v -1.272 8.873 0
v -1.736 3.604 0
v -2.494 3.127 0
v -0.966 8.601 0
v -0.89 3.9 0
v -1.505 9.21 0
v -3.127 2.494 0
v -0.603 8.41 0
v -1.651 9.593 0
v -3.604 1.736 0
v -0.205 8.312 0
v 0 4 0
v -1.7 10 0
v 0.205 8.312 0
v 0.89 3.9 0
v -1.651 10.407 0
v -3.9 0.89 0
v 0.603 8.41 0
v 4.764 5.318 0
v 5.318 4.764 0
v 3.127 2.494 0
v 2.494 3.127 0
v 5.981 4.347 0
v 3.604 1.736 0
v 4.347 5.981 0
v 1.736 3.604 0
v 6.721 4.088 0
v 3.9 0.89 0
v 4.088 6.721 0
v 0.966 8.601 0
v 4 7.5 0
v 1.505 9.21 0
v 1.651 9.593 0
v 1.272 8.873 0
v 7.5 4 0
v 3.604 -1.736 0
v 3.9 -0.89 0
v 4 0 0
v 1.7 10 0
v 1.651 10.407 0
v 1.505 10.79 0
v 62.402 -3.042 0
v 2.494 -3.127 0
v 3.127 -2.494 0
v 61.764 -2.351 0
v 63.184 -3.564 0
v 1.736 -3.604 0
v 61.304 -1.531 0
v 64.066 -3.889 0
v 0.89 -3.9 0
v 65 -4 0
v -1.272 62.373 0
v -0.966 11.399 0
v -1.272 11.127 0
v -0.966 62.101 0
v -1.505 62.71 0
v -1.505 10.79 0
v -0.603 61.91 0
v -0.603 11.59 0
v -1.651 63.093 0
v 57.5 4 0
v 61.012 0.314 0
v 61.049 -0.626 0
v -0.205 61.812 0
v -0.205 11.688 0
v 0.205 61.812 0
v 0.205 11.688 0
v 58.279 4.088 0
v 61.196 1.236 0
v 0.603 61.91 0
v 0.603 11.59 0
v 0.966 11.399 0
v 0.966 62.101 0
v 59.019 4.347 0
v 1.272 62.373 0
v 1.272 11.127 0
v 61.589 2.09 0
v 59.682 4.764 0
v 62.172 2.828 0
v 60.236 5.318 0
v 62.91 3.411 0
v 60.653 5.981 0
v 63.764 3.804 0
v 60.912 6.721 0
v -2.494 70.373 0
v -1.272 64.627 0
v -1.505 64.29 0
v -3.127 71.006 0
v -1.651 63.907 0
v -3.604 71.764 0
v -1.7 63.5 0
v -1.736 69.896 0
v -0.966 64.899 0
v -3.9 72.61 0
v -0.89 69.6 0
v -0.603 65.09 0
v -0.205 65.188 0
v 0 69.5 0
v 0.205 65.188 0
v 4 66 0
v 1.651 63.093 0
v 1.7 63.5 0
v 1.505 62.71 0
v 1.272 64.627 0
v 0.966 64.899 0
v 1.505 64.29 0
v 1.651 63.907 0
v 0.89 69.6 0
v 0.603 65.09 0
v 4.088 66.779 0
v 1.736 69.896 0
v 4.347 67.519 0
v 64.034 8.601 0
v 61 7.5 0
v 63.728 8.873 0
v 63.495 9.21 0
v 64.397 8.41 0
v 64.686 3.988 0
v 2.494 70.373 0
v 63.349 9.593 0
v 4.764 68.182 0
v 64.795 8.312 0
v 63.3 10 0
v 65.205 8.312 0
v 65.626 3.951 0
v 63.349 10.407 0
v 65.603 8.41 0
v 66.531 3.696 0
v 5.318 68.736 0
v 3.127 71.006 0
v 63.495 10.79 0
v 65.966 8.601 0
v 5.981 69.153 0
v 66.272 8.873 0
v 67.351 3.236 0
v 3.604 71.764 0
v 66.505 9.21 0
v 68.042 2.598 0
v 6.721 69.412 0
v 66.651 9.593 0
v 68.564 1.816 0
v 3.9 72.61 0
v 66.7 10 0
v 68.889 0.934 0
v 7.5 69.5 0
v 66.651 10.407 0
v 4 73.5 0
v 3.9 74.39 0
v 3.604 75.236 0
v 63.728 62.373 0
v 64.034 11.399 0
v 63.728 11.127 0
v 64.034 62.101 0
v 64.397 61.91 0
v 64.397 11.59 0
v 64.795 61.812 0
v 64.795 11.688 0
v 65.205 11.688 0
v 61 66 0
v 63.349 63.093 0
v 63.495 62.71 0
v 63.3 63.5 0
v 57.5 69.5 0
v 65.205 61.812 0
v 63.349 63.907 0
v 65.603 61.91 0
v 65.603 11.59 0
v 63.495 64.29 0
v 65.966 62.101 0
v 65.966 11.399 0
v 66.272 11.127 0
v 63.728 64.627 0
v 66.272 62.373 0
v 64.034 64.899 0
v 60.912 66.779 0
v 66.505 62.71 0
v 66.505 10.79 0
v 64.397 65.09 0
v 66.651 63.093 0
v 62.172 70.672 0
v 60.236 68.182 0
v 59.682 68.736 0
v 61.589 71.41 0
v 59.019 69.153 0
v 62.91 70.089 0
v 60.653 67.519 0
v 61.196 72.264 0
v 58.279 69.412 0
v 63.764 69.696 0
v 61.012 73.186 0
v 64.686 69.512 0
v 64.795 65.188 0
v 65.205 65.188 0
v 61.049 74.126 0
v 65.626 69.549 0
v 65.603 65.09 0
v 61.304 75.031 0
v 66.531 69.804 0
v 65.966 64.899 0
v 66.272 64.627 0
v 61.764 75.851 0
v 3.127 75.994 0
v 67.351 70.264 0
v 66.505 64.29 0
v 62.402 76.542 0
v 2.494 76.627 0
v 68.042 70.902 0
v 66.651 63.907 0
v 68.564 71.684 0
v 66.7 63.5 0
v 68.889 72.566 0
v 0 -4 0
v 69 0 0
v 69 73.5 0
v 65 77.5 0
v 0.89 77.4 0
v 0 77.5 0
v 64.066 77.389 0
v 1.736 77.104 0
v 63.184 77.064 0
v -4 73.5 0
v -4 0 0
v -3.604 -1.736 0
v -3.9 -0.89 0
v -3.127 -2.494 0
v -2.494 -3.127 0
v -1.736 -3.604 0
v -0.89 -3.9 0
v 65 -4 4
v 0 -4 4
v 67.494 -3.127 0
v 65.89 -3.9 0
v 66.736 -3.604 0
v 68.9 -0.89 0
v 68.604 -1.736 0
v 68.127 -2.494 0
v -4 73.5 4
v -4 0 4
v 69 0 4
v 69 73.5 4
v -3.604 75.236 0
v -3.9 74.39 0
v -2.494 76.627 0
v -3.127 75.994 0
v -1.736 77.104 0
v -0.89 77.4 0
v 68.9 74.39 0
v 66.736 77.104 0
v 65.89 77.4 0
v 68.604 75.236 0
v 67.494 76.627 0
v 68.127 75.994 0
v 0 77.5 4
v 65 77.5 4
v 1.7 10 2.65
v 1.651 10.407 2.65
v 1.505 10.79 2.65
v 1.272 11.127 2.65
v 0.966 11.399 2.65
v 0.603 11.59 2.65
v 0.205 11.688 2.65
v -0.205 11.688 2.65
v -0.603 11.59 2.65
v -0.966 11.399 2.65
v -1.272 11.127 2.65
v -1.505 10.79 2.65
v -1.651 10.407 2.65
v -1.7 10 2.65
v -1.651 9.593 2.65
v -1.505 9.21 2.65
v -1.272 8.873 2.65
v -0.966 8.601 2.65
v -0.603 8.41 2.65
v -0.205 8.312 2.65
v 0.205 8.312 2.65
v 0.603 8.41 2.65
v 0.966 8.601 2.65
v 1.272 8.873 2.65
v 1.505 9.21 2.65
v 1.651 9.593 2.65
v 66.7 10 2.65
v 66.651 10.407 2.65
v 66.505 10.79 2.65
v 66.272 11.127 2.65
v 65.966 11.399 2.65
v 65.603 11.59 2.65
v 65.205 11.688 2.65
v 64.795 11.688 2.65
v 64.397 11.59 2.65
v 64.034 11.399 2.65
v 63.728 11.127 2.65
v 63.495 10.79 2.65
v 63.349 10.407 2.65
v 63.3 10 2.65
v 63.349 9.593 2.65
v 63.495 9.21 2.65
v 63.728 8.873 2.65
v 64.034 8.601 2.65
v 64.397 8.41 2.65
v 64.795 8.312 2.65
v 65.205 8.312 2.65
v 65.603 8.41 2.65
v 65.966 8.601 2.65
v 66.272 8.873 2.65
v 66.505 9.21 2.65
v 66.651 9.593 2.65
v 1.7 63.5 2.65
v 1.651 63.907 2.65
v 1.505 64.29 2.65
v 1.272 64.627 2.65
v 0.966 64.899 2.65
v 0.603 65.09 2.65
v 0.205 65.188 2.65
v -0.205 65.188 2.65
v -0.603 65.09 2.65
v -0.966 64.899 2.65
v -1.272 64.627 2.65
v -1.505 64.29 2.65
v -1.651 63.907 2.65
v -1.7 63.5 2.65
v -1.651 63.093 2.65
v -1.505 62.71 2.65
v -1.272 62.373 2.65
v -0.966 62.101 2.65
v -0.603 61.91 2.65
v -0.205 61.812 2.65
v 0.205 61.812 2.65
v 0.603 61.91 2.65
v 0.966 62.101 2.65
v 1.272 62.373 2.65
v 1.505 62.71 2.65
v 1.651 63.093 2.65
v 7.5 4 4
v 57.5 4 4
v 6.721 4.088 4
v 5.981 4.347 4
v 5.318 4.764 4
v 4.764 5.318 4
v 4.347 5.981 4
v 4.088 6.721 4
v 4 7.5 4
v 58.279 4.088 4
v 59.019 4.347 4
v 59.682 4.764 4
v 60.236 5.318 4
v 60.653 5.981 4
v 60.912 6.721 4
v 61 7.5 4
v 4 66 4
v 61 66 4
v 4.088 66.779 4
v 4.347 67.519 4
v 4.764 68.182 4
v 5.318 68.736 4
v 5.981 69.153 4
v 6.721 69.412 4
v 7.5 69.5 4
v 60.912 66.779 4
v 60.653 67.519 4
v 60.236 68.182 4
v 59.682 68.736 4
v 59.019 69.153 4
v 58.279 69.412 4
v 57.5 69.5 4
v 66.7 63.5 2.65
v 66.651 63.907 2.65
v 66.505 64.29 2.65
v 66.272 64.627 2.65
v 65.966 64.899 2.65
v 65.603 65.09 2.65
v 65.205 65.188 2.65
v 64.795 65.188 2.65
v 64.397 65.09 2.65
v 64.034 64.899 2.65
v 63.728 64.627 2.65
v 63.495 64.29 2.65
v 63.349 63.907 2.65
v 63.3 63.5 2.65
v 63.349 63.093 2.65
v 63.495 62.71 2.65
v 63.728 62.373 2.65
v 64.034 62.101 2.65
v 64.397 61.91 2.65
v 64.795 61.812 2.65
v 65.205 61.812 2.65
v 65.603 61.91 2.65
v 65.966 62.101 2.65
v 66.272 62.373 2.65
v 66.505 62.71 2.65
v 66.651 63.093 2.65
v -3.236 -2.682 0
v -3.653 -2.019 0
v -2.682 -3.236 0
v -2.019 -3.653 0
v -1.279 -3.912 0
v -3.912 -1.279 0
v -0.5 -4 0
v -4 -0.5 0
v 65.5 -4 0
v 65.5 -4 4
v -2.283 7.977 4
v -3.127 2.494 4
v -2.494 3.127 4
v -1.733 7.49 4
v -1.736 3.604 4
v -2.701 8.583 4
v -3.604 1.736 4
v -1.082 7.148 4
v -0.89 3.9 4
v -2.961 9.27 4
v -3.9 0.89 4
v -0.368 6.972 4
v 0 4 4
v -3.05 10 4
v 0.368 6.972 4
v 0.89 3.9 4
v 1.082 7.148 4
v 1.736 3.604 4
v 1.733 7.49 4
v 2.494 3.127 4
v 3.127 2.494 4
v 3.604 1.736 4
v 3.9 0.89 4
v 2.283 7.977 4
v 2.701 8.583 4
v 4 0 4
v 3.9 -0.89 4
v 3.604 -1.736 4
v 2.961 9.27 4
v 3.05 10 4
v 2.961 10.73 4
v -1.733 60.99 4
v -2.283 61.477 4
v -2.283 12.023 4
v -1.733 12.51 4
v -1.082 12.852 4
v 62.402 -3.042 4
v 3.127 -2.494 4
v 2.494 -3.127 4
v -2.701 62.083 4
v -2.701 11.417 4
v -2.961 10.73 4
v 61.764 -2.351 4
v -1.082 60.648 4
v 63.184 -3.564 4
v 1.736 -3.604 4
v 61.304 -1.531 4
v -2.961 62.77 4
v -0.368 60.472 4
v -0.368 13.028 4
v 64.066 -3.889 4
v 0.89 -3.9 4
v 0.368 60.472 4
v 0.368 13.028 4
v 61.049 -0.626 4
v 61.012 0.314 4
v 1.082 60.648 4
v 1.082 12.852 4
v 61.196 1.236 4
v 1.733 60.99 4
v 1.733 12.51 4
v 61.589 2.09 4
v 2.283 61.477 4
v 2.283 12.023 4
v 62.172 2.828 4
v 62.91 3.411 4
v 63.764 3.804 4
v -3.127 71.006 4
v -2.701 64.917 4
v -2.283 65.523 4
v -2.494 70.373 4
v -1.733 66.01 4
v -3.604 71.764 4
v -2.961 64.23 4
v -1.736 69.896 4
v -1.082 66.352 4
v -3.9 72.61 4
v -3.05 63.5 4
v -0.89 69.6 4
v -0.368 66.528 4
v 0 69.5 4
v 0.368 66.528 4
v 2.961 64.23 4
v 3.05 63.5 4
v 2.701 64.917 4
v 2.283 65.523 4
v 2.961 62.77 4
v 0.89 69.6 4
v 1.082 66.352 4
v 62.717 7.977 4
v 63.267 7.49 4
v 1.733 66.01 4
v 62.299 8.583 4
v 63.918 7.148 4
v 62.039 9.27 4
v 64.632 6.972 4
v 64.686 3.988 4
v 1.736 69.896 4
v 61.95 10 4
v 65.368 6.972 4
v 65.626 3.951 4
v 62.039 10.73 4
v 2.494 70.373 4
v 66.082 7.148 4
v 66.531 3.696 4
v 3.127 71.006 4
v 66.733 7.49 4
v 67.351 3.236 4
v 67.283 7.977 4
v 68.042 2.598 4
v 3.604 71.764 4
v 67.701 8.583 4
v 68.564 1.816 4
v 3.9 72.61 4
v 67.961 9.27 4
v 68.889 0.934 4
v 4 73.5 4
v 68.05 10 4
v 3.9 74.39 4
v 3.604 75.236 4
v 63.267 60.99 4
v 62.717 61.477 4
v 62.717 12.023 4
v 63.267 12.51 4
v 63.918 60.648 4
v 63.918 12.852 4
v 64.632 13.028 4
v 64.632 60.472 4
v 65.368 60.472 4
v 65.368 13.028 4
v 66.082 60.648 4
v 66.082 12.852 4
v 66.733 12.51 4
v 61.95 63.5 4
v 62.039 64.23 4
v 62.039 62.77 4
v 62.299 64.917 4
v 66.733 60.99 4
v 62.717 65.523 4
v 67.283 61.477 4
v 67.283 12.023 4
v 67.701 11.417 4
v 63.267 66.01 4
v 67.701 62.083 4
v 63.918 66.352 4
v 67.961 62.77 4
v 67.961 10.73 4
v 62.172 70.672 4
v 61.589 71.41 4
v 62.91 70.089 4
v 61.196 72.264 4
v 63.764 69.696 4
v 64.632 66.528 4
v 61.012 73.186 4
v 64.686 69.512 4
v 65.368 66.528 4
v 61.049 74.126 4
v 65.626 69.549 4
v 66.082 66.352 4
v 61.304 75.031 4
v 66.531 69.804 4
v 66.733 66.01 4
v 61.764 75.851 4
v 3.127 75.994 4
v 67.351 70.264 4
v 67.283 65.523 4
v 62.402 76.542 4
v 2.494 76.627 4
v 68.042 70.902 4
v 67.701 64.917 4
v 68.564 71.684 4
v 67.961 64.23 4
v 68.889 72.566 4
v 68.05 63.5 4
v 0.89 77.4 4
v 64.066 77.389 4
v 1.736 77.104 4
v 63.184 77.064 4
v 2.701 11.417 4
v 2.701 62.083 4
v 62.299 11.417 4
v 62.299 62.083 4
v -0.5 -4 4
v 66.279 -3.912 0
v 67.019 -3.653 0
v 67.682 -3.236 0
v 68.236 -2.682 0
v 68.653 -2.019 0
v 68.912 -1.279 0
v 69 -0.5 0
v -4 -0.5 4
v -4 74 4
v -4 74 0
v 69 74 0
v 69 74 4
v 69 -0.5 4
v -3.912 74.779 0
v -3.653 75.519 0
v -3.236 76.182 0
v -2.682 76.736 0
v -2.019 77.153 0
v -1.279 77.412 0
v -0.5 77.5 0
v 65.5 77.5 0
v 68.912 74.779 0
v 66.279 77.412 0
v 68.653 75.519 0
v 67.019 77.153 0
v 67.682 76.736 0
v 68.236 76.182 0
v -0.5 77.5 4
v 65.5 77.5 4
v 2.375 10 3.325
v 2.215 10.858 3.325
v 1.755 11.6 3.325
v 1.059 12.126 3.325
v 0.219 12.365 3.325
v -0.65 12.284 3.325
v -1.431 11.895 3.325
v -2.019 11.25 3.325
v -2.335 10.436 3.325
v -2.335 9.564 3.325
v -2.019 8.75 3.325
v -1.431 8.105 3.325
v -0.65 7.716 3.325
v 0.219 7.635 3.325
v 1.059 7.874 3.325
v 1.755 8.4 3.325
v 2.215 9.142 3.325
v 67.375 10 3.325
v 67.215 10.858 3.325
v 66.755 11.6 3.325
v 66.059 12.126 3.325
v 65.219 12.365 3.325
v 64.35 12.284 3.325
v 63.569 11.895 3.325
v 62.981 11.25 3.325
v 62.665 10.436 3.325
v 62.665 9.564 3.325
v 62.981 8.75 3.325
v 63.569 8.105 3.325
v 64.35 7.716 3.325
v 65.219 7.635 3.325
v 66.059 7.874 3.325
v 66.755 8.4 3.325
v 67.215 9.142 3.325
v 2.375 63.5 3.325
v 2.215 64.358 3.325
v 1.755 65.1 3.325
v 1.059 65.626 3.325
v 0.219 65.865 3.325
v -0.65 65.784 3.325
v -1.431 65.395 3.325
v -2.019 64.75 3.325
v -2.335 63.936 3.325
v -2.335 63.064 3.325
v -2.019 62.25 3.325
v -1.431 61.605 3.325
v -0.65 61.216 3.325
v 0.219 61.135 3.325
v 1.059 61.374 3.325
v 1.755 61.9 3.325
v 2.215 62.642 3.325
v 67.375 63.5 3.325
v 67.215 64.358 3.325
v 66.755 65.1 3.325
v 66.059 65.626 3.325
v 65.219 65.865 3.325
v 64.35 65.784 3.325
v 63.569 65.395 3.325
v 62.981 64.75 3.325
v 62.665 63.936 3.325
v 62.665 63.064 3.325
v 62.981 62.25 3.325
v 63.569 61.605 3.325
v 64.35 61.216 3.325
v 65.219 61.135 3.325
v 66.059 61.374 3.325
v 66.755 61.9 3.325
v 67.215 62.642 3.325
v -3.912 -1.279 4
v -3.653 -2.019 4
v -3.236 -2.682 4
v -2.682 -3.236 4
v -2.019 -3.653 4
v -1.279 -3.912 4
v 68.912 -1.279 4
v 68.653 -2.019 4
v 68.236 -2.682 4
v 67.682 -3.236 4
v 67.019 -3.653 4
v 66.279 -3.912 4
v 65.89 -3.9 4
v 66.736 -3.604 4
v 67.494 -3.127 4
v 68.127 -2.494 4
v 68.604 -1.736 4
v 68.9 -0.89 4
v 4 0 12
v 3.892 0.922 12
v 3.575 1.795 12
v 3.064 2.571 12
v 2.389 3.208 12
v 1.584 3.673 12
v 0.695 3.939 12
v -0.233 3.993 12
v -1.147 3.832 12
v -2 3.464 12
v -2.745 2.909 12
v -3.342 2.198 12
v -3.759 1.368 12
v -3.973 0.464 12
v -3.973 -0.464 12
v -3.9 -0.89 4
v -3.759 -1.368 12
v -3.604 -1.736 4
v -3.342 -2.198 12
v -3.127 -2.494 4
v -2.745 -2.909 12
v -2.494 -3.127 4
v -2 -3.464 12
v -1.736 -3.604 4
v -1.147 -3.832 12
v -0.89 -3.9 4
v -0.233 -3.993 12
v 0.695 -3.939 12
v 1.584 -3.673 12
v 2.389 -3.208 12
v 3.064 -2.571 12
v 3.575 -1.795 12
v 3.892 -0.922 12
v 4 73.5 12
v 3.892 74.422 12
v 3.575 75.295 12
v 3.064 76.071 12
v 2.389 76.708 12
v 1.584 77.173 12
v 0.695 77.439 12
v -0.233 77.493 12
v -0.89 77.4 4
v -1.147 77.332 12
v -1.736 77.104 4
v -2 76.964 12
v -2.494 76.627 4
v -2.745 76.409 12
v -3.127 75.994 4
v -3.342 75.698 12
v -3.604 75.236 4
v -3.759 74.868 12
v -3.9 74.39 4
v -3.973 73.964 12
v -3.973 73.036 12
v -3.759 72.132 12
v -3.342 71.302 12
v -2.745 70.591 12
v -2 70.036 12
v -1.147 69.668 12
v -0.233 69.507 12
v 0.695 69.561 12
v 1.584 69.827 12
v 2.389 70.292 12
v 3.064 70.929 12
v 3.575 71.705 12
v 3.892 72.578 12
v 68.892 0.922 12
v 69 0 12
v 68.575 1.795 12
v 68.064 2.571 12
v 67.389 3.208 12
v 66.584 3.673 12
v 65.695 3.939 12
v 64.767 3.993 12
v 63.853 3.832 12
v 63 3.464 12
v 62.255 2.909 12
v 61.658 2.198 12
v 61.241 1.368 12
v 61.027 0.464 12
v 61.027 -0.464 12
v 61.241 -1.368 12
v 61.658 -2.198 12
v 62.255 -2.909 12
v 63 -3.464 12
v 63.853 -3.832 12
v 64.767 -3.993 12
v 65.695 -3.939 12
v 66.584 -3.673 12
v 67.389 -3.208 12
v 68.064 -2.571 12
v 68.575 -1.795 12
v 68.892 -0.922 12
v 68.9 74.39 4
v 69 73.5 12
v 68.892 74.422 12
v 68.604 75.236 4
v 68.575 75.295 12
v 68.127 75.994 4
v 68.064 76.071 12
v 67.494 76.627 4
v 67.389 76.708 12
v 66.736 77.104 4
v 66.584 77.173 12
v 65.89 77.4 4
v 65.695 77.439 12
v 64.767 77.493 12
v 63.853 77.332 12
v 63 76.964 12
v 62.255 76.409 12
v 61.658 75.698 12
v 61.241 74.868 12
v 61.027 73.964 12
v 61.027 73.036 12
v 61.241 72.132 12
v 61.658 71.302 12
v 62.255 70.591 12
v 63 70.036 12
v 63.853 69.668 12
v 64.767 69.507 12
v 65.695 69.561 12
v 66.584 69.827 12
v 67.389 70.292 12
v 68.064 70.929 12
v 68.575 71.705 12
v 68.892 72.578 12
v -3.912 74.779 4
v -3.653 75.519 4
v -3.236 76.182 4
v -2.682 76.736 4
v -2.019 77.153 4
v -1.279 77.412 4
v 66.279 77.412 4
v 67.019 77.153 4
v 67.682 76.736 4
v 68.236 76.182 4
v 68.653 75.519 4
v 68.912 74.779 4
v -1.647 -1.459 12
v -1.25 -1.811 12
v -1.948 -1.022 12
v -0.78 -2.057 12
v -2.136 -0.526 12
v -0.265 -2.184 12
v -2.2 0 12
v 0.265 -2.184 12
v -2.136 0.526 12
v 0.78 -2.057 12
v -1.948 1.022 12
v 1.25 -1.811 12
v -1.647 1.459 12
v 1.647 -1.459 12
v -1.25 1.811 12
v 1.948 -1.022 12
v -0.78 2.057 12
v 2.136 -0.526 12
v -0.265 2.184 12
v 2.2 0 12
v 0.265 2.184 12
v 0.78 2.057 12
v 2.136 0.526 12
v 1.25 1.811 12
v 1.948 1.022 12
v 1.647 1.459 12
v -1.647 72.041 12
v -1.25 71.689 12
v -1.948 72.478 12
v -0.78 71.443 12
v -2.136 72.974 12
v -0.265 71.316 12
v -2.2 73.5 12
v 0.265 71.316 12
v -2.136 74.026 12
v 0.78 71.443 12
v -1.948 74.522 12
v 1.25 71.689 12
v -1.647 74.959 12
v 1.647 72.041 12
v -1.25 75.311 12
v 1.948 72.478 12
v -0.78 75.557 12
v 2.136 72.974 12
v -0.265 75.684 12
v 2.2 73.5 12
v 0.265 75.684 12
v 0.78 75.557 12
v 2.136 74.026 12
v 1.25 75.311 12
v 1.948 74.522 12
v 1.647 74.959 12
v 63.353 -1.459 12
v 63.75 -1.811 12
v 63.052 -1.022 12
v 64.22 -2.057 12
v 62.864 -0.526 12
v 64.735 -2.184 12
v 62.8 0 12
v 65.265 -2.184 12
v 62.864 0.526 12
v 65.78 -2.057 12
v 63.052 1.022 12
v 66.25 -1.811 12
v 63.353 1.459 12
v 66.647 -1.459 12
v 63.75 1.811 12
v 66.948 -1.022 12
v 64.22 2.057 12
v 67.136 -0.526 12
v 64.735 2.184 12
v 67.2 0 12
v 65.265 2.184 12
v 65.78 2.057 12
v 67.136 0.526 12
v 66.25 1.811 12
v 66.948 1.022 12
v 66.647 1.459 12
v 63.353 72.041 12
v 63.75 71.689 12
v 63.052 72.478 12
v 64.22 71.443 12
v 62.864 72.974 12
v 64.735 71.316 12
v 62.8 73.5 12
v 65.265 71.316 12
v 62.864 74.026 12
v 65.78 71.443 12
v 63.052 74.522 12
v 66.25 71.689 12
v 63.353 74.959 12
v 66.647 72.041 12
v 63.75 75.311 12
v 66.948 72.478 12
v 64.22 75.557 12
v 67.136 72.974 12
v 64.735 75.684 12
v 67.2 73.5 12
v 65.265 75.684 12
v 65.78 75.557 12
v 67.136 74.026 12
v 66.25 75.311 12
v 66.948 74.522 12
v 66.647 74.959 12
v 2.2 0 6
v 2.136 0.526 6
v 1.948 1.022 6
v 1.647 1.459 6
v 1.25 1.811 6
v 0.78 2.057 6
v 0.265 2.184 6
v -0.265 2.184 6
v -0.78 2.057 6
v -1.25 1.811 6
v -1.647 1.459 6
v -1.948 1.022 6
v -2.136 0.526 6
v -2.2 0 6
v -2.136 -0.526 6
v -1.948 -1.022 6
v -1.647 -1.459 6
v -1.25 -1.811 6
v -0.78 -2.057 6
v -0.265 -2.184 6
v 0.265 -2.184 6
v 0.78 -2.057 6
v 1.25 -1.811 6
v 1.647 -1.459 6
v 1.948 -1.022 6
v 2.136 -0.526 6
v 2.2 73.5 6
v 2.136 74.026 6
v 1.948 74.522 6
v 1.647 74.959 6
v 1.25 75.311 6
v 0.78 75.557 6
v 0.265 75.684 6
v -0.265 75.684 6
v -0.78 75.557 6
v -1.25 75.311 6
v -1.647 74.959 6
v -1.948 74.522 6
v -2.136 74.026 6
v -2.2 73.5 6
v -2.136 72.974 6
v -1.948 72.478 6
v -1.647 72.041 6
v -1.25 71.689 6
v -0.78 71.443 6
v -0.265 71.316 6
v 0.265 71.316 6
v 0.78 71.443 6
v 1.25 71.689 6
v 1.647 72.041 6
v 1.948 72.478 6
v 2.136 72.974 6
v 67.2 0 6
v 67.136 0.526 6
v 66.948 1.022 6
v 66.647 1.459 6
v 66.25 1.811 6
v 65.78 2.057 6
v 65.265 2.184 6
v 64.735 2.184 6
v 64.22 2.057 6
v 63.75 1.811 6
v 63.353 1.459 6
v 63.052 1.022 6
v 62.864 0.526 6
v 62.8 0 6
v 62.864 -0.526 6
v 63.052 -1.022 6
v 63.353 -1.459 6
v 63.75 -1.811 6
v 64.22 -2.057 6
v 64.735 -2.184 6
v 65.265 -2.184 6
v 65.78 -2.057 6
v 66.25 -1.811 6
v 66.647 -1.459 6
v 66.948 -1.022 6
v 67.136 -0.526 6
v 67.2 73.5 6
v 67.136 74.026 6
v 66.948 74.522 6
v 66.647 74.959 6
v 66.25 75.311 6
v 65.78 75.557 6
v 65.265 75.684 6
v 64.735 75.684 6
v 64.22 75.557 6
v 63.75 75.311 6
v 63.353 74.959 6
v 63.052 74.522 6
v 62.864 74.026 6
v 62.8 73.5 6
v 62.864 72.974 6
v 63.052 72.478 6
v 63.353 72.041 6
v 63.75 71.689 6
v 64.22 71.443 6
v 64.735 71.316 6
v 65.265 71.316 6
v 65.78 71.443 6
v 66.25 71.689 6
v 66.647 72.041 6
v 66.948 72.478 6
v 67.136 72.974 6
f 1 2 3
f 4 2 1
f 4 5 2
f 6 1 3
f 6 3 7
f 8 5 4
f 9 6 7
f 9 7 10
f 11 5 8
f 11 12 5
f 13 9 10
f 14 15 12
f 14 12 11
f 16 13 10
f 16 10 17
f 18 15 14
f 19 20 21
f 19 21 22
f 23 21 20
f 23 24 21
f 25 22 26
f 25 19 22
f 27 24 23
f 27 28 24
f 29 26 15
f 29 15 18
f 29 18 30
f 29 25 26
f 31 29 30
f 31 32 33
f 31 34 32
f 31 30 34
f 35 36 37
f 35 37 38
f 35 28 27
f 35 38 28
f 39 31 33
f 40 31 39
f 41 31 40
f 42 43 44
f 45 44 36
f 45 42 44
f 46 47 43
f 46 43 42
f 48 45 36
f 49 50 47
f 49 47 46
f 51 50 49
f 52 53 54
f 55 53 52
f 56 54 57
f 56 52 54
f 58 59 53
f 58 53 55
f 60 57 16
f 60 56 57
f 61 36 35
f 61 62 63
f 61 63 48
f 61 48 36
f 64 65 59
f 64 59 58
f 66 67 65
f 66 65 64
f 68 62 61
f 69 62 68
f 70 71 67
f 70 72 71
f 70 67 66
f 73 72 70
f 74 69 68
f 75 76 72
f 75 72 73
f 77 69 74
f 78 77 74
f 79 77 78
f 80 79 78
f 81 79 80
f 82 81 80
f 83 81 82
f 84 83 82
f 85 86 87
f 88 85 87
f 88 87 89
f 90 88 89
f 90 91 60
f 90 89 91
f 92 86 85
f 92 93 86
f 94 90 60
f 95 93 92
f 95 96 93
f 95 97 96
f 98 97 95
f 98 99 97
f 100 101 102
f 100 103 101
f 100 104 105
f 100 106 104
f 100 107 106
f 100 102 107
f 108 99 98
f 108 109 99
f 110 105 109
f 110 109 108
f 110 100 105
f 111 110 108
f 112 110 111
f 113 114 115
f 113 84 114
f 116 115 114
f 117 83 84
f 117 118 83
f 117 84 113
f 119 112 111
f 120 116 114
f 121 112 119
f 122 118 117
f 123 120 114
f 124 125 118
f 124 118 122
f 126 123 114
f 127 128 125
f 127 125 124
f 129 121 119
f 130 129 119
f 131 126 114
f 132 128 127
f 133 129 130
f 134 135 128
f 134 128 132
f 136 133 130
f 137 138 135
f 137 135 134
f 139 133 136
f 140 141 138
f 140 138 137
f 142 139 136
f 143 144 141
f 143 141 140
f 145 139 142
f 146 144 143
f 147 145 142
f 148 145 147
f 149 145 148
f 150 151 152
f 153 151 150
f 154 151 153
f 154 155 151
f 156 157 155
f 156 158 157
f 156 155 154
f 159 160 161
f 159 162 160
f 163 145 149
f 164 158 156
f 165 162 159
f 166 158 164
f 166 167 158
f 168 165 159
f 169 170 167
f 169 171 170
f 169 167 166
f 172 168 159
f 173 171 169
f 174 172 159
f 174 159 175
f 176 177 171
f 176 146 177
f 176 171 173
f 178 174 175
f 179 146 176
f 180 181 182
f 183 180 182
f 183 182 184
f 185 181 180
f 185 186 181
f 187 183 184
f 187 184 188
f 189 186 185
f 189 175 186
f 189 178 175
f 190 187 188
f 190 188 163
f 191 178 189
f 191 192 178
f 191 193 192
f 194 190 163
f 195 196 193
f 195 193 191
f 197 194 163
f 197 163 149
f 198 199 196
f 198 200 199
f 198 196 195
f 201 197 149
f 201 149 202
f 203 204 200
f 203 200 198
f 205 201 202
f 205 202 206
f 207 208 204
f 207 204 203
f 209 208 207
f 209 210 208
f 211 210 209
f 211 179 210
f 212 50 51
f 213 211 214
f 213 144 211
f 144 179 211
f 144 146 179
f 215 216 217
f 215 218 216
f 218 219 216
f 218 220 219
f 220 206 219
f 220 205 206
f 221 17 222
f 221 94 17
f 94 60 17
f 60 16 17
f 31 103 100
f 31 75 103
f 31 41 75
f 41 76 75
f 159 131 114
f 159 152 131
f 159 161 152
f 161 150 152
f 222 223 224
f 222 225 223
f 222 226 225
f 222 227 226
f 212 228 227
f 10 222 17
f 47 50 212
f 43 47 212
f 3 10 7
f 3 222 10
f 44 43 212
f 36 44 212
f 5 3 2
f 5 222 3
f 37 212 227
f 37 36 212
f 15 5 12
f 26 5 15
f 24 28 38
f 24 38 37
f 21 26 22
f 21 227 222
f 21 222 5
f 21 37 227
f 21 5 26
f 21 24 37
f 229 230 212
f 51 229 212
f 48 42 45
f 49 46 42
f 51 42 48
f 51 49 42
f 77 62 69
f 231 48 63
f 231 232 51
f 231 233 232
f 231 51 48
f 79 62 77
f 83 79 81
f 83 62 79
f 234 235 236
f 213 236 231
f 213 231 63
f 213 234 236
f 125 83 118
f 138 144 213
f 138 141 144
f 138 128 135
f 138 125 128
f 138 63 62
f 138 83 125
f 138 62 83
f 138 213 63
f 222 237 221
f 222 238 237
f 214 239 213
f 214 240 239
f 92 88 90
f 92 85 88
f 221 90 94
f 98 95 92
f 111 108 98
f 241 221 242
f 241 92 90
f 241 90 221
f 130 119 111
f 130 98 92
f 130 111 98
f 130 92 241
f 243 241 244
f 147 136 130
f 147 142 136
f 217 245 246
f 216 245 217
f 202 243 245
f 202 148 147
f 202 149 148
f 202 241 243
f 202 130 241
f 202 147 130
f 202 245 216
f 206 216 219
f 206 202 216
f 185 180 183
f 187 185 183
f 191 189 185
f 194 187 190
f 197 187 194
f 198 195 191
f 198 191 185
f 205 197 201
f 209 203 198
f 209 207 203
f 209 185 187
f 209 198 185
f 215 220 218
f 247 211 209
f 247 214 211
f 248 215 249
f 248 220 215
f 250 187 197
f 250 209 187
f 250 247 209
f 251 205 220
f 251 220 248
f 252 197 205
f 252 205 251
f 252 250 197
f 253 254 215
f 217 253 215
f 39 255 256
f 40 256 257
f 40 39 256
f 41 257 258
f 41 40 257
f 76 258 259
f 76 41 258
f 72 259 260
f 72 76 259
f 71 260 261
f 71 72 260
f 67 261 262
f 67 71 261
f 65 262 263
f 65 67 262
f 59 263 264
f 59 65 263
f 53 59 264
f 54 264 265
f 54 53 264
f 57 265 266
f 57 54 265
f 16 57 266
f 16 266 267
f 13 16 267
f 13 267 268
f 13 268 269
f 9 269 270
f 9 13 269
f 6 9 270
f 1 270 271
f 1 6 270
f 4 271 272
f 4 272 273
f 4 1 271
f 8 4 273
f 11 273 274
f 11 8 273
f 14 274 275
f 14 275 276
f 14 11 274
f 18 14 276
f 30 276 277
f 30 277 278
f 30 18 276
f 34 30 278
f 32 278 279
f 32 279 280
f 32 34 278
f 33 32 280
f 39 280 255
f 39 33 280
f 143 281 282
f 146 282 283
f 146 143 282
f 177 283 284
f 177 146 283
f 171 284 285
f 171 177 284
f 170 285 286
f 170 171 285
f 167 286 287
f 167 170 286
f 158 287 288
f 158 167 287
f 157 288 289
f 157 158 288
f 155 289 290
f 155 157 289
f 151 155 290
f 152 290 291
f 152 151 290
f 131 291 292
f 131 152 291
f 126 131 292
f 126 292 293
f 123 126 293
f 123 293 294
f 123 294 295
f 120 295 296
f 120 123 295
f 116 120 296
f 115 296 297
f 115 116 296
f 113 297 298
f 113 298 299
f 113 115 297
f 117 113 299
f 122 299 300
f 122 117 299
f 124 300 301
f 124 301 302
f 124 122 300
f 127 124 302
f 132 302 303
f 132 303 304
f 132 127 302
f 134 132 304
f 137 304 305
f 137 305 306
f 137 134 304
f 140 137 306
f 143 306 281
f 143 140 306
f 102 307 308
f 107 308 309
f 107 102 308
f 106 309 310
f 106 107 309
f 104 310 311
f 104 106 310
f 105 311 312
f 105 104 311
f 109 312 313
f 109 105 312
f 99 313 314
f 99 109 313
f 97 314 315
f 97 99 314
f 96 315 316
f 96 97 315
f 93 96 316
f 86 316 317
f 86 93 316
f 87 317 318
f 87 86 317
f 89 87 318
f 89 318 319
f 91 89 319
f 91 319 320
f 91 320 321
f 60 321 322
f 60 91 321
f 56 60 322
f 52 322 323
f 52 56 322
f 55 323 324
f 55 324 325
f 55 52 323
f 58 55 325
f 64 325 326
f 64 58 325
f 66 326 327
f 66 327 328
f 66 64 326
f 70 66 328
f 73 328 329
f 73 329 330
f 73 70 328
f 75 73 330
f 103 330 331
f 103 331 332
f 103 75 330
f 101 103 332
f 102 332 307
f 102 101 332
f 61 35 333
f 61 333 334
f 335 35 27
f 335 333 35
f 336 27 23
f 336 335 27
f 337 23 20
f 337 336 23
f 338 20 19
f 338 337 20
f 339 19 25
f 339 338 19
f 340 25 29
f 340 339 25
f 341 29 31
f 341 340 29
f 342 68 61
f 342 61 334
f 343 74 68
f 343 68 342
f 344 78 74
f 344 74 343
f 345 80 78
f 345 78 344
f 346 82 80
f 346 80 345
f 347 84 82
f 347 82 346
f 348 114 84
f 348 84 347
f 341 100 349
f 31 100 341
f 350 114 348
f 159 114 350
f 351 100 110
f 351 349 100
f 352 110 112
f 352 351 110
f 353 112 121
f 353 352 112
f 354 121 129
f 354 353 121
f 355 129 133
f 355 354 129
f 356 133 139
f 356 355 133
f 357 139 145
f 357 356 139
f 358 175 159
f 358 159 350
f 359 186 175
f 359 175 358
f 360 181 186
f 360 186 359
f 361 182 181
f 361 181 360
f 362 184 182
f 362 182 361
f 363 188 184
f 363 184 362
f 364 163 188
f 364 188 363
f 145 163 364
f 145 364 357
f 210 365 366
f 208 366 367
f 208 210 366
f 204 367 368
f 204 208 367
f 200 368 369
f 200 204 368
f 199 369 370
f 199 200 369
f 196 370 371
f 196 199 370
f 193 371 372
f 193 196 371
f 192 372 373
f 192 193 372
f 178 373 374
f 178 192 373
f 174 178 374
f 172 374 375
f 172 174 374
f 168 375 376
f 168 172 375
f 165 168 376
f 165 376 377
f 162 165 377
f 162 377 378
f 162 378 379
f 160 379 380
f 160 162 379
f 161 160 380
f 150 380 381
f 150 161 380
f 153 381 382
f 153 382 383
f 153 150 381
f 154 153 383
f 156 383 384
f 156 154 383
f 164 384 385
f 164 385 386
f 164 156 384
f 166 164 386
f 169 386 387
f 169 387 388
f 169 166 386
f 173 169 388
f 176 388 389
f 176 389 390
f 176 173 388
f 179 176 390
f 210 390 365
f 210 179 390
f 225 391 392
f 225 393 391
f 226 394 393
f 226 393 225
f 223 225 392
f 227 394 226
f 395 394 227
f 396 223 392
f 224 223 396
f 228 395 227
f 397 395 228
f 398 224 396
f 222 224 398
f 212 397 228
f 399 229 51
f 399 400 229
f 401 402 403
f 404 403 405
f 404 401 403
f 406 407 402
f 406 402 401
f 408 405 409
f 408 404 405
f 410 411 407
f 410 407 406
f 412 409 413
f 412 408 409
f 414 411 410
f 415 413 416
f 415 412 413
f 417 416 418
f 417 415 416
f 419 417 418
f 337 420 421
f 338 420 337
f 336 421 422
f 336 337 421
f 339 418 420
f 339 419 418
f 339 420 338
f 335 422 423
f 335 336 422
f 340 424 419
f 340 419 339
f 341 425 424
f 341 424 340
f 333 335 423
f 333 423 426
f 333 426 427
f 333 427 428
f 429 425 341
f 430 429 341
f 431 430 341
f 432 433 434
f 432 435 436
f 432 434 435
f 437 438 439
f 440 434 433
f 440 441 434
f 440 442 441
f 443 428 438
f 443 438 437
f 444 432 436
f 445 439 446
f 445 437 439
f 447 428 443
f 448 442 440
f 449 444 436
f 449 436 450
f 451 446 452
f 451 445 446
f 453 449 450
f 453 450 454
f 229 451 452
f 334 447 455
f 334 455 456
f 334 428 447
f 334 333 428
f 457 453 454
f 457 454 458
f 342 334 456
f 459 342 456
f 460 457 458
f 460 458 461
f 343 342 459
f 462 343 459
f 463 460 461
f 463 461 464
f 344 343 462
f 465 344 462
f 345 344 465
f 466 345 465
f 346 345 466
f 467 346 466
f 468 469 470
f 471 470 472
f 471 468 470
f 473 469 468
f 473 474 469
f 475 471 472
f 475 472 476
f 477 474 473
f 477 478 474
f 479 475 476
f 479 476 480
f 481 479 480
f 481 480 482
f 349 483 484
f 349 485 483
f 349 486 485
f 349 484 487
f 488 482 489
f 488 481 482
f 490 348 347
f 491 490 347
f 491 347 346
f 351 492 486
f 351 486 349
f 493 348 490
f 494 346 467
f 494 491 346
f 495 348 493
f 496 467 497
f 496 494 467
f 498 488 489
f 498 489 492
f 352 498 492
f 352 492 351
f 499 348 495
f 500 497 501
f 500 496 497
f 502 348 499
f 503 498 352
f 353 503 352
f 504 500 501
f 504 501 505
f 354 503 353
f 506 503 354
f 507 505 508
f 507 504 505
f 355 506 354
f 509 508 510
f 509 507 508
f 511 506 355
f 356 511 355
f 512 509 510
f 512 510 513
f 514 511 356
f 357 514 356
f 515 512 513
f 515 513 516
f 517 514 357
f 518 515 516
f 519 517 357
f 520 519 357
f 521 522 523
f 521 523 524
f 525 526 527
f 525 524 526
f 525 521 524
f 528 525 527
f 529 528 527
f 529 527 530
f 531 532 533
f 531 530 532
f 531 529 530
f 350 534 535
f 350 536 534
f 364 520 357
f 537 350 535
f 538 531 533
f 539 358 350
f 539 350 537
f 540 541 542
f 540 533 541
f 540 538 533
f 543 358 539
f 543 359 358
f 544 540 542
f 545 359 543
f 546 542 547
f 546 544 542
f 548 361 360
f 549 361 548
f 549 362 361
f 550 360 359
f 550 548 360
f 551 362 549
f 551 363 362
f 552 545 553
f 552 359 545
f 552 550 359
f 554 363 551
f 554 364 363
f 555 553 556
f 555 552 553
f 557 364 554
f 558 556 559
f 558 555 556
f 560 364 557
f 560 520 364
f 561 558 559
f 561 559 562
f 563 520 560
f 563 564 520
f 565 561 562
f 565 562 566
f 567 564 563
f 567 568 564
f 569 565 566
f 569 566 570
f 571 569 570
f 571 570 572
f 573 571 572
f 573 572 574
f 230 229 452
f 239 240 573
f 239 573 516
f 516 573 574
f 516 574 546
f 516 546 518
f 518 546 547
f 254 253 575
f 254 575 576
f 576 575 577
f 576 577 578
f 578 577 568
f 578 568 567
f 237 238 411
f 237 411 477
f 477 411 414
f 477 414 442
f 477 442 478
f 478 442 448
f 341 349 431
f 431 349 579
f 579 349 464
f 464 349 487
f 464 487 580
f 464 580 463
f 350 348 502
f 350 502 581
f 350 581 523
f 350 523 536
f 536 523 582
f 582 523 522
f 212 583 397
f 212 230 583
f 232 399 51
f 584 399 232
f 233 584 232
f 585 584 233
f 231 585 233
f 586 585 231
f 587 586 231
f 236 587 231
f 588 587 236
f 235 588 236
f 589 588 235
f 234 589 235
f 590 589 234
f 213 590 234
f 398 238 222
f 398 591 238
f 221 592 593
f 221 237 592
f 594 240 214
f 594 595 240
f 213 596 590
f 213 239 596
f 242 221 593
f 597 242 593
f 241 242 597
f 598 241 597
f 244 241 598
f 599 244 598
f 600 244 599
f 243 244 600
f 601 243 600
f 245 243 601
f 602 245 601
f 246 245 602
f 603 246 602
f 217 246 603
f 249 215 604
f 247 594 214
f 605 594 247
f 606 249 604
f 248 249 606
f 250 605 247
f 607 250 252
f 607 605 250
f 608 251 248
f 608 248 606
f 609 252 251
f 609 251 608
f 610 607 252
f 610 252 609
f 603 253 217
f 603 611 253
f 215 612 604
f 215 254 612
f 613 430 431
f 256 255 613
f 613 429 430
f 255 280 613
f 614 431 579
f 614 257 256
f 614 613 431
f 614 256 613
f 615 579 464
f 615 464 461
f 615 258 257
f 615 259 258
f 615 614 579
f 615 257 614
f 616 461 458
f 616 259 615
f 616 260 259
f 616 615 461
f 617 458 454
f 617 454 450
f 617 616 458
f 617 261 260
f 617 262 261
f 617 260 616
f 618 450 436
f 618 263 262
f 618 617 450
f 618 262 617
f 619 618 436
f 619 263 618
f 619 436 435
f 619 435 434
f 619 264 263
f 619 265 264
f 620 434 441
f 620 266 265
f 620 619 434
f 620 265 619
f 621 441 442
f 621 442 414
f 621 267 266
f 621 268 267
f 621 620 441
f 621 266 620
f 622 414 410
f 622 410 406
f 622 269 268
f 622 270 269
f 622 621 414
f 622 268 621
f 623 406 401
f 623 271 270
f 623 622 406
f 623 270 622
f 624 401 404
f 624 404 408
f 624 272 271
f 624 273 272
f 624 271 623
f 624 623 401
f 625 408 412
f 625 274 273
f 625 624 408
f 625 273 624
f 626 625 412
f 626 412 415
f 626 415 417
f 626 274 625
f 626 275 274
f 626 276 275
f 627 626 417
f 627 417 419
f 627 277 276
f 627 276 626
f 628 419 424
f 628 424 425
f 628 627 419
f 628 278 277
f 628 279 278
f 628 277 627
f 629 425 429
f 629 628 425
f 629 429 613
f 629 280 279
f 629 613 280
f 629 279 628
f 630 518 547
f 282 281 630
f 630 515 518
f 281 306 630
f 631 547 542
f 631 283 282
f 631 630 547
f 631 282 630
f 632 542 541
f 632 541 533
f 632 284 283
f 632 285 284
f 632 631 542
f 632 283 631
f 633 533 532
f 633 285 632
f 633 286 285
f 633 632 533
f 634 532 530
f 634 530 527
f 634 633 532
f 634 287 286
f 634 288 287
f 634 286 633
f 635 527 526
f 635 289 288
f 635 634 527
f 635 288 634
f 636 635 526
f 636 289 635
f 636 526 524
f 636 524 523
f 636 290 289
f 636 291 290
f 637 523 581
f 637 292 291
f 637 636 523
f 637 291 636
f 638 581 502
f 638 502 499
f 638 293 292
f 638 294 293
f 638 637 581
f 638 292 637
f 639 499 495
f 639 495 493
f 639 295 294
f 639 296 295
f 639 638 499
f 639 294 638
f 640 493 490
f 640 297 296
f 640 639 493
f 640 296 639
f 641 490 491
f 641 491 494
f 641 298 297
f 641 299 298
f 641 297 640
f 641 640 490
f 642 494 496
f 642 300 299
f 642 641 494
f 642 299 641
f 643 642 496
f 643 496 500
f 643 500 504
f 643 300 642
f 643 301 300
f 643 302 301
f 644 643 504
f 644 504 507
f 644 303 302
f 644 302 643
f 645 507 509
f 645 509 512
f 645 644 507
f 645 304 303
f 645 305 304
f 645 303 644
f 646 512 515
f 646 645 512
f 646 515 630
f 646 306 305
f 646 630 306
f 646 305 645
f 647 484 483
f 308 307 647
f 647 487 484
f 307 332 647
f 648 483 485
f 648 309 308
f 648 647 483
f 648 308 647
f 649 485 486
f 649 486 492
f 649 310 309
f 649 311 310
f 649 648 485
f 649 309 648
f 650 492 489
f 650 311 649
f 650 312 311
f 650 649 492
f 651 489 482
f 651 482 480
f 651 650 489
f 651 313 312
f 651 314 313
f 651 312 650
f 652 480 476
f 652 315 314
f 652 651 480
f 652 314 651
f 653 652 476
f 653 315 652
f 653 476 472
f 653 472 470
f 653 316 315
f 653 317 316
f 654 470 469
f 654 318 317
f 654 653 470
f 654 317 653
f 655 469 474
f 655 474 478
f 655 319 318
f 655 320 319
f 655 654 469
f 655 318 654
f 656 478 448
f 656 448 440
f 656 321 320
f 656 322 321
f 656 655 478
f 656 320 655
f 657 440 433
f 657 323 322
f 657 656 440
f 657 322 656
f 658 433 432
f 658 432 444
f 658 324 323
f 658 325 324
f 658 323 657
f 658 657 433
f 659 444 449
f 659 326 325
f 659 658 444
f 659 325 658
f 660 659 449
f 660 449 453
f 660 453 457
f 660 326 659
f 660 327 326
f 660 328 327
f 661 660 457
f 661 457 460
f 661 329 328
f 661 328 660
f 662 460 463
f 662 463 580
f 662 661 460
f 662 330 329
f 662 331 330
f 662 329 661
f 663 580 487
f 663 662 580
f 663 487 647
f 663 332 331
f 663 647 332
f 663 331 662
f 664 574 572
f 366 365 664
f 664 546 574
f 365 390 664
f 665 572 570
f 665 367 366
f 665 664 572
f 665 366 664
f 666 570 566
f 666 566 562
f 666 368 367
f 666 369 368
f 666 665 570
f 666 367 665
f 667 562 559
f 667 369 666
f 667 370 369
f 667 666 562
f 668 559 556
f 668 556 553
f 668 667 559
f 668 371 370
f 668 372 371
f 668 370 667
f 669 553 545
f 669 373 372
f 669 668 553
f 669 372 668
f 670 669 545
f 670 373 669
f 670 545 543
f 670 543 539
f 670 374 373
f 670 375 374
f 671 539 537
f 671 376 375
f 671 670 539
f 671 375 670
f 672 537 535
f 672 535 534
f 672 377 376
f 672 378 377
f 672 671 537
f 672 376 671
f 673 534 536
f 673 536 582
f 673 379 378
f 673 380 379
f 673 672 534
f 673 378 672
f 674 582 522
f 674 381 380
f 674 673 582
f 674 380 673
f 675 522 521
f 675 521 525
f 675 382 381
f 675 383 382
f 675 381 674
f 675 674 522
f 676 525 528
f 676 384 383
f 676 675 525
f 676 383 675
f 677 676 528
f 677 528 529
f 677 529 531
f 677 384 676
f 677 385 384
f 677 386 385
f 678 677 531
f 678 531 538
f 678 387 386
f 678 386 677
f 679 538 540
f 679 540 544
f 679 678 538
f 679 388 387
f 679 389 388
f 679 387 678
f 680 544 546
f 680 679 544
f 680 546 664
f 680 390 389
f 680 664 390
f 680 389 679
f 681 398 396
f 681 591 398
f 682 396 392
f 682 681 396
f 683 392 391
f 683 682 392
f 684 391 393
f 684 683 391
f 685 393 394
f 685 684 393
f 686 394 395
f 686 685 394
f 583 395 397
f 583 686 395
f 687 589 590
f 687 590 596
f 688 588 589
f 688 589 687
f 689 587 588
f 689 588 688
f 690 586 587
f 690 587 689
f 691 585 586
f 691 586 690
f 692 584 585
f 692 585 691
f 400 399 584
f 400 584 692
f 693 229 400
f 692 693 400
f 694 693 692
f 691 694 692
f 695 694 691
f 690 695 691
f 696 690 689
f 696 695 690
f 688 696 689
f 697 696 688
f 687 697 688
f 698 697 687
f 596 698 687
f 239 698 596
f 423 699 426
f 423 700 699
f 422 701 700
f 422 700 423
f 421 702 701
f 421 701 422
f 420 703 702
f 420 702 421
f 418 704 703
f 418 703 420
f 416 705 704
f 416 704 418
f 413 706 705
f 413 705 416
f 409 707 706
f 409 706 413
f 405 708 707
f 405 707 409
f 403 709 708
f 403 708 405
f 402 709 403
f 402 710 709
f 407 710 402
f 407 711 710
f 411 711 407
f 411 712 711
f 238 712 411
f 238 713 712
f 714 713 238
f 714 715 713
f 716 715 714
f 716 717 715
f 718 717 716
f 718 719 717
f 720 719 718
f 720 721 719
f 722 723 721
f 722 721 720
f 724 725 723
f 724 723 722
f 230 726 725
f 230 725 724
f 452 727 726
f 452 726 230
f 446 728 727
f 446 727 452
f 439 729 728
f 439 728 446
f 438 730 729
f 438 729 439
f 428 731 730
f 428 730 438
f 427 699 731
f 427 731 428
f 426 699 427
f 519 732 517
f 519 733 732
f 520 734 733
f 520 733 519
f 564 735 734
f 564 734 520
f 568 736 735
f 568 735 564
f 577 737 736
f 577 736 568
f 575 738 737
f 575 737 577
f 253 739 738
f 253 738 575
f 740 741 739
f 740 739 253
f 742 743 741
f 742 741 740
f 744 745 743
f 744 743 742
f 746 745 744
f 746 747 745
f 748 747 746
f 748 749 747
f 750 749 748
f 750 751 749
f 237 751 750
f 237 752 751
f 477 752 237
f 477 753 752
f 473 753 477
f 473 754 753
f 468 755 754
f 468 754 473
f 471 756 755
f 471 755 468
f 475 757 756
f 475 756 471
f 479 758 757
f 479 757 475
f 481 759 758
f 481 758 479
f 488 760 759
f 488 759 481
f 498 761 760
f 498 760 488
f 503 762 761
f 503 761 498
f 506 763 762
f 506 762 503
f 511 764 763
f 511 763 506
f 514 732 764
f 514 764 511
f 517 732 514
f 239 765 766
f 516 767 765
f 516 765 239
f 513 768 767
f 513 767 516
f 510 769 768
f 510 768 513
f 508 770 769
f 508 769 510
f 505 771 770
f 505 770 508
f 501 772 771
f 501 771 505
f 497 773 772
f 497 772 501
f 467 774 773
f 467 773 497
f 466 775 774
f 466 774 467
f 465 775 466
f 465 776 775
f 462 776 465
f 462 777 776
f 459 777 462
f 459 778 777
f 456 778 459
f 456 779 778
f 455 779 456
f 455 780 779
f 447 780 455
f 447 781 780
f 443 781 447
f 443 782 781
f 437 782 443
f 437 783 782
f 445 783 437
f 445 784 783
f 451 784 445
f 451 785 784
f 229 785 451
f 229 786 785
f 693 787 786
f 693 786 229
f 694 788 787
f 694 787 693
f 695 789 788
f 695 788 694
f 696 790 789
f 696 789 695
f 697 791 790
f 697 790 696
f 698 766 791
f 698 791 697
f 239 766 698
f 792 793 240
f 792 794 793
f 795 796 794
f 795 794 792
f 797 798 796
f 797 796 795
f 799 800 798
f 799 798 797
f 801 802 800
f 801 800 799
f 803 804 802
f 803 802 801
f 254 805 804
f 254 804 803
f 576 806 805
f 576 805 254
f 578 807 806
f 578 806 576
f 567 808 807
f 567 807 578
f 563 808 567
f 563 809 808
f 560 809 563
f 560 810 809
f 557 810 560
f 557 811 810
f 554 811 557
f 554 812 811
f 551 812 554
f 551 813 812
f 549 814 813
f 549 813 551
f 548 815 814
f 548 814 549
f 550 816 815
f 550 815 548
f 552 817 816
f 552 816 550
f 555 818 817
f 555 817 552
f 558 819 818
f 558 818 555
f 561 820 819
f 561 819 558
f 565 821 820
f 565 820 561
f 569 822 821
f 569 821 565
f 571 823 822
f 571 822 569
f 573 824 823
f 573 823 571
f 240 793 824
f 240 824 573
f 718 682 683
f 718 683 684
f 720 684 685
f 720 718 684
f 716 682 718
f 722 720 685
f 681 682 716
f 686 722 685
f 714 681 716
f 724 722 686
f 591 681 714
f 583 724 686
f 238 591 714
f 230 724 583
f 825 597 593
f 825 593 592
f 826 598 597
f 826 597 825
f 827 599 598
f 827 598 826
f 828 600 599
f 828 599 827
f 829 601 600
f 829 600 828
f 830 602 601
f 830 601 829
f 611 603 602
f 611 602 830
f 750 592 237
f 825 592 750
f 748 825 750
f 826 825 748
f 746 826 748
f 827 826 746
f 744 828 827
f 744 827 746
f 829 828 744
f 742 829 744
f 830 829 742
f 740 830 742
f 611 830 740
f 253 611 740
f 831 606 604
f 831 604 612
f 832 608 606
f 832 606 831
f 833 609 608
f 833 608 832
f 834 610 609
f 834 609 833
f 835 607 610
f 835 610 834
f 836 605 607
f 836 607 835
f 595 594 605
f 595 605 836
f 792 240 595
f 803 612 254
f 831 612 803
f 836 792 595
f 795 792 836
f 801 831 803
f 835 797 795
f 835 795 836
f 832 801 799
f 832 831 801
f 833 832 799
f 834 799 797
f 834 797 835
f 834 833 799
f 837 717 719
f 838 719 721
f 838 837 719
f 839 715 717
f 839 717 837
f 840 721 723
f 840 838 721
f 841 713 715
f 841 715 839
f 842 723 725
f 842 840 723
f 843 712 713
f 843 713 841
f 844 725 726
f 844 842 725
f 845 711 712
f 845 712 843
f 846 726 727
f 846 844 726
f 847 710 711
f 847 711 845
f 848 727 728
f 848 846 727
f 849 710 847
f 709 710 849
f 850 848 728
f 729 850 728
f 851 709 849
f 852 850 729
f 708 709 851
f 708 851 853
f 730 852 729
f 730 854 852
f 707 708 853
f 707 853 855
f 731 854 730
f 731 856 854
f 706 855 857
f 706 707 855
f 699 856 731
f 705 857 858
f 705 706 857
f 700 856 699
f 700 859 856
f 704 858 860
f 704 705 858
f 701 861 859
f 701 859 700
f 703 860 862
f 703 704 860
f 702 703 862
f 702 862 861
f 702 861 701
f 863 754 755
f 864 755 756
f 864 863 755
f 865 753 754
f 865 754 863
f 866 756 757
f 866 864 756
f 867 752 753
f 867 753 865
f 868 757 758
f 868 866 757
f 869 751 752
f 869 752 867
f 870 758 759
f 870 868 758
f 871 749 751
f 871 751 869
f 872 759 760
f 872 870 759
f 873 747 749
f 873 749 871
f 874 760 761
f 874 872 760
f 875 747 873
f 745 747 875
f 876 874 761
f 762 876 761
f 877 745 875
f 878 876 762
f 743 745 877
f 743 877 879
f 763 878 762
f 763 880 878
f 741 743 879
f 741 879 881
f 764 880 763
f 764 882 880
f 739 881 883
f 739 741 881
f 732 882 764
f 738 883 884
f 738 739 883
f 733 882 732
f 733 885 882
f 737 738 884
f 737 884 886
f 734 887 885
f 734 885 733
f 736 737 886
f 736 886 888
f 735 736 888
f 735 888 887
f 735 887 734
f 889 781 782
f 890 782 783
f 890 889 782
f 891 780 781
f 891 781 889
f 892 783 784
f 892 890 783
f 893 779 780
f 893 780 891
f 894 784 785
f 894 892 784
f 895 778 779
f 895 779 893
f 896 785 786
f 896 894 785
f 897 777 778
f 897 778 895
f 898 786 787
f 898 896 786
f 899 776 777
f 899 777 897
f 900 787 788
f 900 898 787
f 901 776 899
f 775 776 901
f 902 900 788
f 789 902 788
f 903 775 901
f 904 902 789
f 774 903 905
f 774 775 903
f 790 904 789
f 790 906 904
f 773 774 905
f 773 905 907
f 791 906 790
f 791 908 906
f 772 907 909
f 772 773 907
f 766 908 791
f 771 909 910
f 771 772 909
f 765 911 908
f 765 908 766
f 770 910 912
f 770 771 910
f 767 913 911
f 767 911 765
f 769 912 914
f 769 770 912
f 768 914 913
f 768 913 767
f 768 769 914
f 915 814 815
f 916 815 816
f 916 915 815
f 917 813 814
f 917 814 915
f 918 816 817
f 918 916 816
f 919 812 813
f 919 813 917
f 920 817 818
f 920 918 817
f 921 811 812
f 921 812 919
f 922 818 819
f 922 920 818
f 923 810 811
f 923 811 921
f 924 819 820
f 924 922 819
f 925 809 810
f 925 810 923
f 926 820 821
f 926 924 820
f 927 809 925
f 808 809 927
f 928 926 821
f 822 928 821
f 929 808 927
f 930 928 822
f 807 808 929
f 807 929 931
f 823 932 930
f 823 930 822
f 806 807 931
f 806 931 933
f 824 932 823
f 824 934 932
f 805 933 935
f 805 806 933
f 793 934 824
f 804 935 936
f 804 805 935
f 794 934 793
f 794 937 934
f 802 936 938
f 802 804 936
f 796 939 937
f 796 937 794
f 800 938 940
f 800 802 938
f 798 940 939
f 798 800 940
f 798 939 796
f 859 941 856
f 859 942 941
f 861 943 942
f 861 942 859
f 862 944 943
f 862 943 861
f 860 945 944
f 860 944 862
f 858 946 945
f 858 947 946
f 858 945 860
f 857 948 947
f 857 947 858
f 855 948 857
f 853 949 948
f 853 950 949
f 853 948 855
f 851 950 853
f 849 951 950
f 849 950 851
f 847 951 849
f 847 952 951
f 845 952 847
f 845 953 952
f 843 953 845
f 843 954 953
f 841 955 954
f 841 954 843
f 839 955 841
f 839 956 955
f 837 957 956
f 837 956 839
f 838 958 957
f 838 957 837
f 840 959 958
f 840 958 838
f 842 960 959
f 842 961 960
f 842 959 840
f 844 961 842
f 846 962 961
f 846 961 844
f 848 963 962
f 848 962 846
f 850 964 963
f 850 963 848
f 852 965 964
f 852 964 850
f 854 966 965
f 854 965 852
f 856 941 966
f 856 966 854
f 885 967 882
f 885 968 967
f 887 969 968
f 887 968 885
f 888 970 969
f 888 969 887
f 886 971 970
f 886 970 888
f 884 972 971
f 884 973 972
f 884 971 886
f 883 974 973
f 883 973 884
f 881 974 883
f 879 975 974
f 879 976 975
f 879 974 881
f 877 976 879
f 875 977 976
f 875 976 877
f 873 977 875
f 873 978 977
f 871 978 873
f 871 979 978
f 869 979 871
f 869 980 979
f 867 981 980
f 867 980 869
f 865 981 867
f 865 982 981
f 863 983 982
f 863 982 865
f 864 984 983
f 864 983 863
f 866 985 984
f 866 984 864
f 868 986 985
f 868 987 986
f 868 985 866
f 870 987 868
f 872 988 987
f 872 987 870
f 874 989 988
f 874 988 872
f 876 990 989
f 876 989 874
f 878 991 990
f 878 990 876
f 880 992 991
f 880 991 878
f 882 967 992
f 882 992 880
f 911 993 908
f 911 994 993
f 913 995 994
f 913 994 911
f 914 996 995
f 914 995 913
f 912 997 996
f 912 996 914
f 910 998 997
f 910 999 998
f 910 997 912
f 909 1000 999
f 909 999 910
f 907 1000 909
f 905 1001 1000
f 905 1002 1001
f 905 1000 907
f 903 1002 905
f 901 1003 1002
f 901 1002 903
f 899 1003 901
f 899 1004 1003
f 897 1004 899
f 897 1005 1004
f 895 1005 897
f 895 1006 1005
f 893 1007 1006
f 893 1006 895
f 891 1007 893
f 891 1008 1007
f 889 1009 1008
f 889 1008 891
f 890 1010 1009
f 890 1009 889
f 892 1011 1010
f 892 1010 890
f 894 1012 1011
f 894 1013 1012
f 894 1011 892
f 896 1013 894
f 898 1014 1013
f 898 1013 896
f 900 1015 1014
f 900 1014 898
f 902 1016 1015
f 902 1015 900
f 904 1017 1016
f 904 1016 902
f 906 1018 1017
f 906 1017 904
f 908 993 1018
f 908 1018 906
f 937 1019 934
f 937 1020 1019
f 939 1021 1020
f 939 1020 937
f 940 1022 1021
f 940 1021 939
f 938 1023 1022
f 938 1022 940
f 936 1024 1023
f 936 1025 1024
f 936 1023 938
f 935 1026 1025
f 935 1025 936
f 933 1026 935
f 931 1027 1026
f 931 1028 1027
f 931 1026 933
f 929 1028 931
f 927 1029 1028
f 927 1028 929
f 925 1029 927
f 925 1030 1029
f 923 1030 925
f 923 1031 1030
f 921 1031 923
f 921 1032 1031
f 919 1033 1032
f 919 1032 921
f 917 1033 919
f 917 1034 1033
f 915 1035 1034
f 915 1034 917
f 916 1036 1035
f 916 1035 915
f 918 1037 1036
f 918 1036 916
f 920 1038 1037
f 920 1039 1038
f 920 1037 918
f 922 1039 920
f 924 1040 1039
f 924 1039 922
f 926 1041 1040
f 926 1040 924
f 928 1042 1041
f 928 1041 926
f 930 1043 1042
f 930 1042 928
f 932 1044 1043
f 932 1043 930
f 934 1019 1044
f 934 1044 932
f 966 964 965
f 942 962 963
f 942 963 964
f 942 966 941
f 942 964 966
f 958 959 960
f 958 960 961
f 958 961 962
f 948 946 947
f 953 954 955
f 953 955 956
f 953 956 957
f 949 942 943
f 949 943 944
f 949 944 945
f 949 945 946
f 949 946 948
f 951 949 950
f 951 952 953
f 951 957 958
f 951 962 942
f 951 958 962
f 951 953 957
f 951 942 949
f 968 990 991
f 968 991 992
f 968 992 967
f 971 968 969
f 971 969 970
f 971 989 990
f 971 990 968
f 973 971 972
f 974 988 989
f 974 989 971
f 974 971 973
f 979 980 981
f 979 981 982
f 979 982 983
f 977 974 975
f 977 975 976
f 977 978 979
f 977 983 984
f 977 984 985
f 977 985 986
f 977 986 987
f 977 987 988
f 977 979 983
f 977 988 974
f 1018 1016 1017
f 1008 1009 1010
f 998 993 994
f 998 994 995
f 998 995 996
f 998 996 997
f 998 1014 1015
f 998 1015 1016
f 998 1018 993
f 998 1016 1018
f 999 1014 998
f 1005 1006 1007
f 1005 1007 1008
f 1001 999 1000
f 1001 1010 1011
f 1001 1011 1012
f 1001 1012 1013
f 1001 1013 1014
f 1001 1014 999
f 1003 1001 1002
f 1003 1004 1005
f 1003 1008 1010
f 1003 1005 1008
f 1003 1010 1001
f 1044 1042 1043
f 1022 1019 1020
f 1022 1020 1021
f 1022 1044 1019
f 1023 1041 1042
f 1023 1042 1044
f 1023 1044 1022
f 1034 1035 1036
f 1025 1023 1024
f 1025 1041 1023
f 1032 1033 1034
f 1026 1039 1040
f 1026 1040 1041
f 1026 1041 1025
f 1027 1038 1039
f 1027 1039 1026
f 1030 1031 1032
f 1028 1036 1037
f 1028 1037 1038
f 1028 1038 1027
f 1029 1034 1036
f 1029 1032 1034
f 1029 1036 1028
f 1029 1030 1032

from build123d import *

# Parameters (mm, degrees)
SKETCH_R                     = 4
PAD_DEPTH                    = 12
SKETCH001_R                  = 2.2
POCKET_DEPTH                 = 6
SKETCH002_W                  = 73
SKETCH002_H                  = 81.5
SKETCH002_W_2                = 57
SKETCH002_H_2                = 65.5
PAD001_DEPTH                 = 4
SKETCH_LINEARPATTERN_2_R     = 4
PAD_LINEARPATTERN_2_DEPTH    = 12
SKETCH001_LINEARPATTERN_2_R  = 2.2
POCKET_LINEARPATTERN_2_DEPTH = 6
LINEARPATTERN001_COUNT       = 2
LINEARPATTERN001_PITCH       = 73.5
FILLET_R                     = 3.5
FILLET001_R                  = 3.5
HOLE_D                       = 3.4
HOLE_DEPTH                   = 25
HOLE_CSINK_D                 = 6.1
HOLE_CSINK_ANGLE             = 90


with BuildPart() as part:
    # Sketch → Pad (new body)
    with BuildSketch(Plane.XY):
        Circle(SKETCH_R)
    pad = extrude(amount=PAD_DEPTH)

    # Sketch001 → Pocket (cut)
    with BuildSketch(Plane.XY.offset(12)):
        Circle(SKETCH001_R)
    pocket = extrude(amount=-POCKET_DEPTH, mode=Mode.SUBTRACT)

    # Sketch002 → Pad001 (join)
    with BuildSketch(Plane.XY):
        with Locations((32.5, 36.75)):
            Rectangle(SKETCH002_W, SKETCH002_H)
        with Locations((32.5, 36.75)):
            Rectangle(SKETCH002_W_2, SKETCH002_H_2, mode=Mode.SUBTRACT)
    extrude(amount=PAD001_DEPTH)

    # Sketch LinearPattern 2 → Pad LinearPattern 2 (add)
    with BuildSketch(Plane(origin=(65, 0, 0), x_dir=(1, 0, 0), z_dir=(0, 0, 1))):
        Circle(SKETCH_LINEARPATTERN_2_R)
    pad_linearpattern_2 = extrude(amount=PAD_LINEARPATTERN_2_DEPTH)

    # Sketch001 LinearPattern 2 → Pocket LinearPattern 2 (cut)
    with BuildSketch(Plane(origin=(65, 0, 12), x_dir=(1, 0, 0), z_dir=(0, 0, 1))):
        Circle(SKETCH001_LINEARPATTERN_2_R)
    pocket_linearpattern_2 = extrude(amount=-POCKET_LINEARPATTERN_2_DEPTH, mode=Mode.SUBTRACT)

    # LinearPattern001: Pad, Pocket, Pad LinearPattern 2, Pocket LinearPattern 2 ×2
    with Locations(*[(0, i * LINEARPATTERN001_PITCH, 0) for i in range(1, LINEARPATTERN001_COUNT)]):
        add(pad)
        add(pocket, mode=Mode.SUBTRACT)
        add(pad_linearpattern_2)
        add(pocket_linearpattern_2, mode=Mode.SUBTRACT)

    # Fillet
    fillet_edges = [part.edges().sort_by_distance(p)[0] for p in [
        (-4, -4, 2),
        (69, -4, 2),
        (69, 77.5, 2),
        (-4, 77.5, 2),
    ]]
    fillet(fillet_edges, radius=FILLET_R)

    # Fillet001
    fillet001_edges = [part.edges().sort_by_distance(p)[0] for p in [
        (61, 4, 2),
        (4, 4, 2),
        (4, 69.5, 2),
        (61, 69.5, 2),
    ]]
    fillet(fillet001_edges, radius=FILLET001_R)

    # Hole
    with Locations(Plane.XY.offset(4)):
        with Locations((0, 63.5), (65, 63.5), (65, 10), (0, 10)):
            CounterSinkHole(HOLE_D / 2, HOLE_CSINK_D / 2, depth=HOLE_DEPTH, counter_sink_angle=HOLE_CSINK_ANGLE)


solid = part.part
